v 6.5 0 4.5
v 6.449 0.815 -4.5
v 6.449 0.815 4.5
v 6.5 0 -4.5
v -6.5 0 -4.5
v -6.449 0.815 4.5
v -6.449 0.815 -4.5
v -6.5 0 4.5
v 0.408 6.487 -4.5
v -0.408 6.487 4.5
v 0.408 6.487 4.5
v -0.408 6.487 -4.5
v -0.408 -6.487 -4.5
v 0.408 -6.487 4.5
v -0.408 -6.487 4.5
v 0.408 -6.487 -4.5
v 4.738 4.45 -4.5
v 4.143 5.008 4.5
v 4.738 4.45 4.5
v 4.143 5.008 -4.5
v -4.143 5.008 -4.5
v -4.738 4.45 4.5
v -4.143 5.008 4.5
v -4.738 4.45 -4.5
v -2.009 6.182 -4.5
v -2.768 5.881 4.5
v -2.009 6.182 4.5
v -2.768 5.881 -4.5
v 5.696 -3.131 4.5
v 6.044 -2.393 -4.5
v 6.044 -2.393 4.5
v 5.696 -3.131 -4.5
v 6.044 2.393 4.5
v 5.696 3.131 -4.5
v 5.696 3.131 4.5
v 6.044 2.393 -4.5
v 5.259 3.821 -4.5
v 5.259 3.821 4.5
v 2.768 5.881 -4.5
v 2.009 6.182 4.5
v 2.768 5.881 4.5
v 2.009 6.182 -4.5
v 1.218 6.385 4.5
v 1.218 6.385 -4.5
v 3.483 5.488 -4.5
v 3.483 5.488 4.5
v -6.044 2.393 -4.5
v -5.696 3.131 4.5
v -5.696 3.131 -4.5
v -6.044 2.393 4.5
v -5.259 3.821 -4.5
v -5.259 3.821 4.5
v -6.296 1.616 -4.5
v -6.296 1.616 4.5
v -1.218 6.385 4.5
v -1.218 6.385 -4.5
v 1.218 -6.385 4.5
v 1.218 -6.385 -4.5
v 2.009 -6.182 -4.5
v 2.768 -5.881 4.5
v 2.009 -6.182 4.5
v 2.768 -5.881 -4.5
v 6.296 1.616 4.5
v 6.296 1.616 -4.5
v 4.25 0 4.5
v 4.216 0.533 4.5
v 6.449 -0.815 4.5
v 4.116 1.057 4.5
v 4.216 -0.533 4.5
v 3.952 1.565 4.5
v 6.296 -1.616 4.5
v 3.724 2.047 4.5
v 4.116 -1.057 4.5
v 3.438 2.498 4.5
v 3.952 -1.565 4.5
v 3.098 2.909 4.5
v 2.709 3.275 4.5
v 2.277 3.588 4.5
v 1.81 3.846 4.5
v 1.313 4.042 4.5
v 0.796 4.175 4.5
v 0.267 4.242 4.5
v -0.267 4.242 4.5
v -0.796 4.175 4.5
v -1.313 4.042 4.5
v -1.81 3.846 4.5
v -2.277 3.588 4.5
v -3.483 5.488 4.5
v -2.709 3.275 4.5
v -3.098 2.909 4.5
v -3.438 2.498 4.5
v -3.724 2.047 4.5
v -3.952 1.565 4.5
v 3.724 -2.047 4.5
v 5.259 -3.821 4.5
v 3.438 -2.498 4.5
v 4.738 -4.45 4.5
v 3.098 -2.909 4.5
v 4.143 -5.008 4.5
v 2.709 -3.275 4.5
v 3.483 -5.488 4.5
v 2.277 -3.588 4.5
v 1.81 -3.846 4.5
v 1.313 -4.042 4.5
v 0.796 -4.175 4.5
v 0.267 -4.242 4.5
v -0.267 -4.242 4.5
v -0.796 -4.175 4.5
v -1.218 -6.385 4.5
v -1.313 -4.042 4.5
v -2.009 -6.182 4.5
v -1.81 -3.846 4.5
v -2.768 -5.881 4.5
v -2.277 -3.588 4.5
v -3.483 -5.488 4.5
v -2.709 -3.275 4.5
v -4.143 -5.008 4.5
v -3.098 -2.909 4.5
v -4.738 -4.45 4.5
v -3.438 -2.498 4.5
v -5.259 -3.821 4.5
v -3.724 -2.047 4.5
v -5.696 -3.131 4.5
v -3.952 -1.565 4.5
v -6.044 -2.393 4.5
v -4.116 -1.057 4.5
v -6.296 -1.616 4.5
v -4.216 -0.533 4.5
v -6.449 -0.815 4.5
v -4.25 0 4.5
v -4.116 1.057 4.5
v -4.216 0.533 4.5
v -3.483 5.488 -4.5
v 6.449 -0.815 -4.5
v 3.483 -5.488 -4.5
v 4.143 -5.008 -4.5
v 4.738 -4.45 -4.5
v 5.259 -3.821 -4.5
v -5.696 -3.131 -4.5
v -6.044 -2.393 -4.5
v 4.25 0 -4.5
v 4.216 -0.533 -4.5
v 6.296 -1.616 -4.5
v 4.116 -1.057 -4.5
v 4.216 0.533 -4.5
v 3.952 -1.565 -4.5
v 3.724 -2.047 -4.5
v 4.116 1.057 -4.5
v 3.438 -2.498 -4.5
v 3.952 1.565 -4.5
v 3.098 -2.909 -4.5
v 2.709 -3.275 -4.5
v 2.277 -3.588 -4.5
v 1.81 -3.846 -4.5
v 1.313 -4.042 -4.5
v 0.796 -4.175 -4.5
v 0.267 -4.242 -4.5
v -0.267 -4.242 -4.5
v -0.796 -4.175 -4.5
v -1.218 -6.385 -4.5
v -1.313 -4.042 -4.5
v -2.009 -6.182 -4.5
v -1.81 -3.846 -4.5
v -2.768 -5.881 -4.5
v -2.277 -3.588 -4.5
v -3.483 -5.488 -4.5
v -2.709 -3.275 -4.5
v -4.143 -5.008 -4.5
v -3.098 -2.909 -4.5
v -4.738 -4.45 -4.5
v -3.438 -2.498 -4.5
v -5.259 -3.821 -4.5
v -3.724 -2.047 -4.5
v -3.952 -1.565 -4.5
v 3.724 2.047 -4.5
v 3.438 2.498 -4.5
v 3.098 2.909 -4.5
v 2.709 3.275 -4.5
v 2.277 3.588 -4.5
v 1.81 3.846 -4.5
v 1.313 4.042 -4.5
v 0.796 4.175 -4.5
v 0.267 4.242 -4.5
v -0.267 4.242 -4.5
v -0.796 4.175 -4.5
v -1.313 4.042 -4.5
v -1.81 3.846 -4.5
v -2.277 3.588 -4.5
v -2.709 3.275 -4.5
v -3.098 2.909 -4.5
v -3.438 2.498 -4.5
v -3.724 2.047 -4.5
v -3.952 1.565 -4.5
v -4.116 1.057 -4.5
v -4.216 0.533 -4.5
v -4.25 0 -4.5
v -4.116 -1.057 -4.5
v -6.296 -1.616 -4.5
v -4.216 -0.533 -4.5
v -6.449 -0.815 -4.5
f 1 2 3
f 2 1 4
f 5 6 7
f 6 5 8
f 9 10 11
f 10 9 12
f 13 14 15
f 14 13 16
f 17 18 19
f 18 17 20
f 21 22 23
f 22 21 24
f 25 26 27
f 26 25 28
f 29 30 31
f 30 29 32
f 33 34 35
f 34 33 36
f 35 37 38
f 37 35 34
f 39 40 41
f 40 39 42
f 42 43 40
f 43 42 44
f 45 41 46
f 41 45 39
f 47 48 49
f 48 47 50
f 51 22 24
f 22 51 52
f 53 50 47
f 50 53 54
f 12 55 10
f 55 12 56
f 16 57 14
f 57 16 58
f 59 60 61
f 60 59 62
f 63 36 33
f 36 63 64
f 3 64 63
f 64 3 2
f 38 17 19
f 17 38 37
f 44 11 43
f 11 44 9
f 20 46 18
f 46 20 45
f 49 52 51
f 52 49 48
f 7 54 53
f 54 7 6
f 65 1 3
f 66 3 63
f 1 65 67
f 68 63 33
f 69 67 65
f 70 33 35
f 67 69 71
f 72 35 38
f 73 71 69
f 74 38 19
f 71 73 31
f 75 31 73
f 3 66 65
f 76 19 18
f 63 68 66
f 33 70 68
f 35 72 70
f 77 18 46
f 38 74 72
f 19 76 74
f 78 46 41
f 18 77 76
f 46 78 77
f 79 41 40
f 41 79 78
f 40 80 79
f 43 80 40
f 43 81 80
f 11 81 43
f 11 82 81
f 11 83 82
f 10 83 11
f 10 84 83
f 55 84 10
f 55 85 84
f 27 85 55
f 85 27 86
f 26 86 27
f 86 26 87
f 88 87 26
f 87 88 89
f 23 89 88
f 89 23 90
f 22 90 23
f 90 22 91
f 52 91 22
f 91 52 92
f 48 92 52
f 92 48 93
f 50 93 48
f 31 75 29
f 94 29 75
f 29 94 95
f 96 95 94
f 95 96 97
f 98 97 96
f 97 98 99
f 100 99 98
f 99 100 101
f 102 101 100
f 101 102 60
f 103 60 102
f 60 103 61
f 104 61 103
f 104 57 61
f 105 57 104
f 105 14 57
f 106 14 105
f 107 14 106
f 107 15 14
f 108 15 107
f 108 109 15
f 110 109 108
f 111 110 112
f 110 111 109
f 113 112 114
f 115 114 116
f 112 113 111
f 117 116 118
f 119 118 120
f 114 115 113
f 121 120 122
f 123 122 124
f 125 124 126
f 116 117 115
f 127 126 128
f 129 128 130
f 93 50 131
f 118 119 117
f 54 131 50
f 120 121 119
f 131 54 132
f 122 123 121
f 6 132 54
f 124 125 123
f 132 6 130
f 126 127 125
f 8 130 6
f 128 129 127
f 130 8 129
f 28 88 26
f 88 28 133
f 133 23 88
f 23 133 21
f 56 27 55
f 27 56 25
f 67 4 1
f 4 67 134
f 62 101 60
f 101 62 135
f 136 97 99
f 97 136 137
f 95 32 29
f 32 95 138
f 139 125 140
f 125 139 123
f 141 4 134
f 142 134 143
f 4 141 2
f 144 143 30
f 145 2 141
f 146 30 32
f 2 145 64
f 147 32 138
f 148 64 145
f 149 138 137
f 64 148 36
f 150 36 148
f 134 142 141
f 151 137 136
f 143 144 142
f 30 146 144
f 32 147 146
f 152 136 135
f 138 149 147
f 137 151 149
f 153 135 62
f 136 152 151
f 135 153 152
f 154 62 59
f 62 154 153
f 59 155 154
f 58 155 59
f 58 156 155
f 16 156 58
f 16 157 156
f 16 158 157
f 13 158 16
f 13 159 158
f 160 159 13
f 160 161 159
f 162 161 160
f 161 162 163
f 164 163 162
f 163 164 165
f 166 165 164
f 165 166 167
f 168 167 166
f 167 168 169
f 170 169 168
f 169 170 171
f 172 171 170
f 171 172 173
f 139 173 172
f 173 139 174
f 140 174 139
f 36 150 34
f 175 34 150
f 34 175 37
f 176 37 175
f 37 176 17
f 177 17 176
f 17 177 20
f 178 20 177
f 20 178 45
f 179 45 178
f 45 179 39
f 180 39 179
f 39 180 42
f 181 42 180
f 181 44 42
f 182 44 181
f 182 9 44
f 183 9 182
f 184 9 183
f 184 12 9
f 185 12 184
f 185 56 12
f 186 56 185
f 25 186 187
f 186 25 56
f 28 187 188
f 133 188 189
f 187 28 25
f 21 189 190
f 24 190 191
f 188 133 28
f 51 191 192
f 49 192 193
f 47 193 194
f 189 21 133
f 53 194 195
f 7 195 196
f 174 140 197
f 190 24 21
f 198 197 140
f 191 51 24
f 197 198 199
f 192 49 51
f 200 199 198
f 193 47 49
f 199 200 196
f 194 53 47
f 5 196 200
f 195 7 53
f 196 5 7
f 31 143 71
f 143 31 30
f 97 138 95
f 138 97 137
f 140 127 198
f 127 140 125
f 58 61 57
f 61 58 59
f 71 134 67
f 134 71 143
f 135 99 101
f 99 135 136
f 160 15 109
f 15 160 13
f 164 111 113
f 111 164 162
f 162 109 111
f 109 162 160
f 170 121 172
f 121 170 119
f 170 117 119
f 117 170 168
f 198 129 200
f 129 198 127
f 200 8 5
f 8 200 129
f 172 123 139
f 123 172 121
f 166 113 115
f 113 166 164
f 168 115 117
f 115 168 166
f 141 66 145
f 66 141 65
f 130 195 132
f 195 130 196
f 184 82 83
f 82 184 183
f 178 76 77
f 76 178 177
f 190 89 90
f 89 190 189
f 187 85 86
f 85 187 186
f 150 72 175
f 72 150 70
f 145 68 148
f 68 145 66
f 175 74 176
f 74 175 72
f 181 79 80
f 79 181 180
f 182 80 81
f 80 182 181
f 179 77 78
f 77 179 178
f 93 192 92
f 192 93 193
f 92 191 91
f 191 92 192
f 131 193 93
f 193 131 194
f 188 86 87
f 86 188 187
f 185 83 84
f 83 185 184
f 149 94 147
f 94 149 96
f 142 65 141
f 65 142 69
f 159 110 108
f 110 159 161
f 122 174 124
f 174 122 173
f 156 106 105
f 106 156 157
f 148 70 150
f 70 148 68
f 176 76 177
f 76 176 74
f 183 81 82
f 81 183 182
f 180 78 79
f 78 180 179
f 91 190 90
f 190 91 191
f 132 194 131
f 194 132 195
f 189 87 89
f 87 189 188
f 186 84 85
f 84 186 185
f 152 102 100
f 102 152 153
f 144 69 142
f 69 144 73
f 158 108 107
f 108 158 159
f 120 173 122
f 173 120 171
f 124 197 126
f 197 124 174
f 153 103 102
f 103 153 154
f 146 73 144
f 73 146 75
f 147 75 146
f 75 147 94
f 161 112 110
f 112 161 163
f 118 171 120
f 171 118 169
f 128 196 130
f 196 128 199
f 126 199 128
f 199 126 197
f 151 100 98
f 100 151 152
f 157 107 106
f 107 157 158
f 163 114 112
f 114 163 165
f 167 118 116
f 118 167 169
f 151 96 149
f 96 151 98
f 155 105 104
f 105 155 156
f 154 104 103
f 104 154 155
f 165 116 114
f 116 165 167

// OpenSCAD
$fn = 50;


difference() {
	union() {
		translate(v = [0, 0, -4.5000000000]) {
			cylinder(h = 9, r = 6.5000000000);
		}
	}
	union() {
		translate(v = [0, 0, -100.0000000000]) {
			cylinder(h = 200, r = 4.2500000000);
		}
	}
}
